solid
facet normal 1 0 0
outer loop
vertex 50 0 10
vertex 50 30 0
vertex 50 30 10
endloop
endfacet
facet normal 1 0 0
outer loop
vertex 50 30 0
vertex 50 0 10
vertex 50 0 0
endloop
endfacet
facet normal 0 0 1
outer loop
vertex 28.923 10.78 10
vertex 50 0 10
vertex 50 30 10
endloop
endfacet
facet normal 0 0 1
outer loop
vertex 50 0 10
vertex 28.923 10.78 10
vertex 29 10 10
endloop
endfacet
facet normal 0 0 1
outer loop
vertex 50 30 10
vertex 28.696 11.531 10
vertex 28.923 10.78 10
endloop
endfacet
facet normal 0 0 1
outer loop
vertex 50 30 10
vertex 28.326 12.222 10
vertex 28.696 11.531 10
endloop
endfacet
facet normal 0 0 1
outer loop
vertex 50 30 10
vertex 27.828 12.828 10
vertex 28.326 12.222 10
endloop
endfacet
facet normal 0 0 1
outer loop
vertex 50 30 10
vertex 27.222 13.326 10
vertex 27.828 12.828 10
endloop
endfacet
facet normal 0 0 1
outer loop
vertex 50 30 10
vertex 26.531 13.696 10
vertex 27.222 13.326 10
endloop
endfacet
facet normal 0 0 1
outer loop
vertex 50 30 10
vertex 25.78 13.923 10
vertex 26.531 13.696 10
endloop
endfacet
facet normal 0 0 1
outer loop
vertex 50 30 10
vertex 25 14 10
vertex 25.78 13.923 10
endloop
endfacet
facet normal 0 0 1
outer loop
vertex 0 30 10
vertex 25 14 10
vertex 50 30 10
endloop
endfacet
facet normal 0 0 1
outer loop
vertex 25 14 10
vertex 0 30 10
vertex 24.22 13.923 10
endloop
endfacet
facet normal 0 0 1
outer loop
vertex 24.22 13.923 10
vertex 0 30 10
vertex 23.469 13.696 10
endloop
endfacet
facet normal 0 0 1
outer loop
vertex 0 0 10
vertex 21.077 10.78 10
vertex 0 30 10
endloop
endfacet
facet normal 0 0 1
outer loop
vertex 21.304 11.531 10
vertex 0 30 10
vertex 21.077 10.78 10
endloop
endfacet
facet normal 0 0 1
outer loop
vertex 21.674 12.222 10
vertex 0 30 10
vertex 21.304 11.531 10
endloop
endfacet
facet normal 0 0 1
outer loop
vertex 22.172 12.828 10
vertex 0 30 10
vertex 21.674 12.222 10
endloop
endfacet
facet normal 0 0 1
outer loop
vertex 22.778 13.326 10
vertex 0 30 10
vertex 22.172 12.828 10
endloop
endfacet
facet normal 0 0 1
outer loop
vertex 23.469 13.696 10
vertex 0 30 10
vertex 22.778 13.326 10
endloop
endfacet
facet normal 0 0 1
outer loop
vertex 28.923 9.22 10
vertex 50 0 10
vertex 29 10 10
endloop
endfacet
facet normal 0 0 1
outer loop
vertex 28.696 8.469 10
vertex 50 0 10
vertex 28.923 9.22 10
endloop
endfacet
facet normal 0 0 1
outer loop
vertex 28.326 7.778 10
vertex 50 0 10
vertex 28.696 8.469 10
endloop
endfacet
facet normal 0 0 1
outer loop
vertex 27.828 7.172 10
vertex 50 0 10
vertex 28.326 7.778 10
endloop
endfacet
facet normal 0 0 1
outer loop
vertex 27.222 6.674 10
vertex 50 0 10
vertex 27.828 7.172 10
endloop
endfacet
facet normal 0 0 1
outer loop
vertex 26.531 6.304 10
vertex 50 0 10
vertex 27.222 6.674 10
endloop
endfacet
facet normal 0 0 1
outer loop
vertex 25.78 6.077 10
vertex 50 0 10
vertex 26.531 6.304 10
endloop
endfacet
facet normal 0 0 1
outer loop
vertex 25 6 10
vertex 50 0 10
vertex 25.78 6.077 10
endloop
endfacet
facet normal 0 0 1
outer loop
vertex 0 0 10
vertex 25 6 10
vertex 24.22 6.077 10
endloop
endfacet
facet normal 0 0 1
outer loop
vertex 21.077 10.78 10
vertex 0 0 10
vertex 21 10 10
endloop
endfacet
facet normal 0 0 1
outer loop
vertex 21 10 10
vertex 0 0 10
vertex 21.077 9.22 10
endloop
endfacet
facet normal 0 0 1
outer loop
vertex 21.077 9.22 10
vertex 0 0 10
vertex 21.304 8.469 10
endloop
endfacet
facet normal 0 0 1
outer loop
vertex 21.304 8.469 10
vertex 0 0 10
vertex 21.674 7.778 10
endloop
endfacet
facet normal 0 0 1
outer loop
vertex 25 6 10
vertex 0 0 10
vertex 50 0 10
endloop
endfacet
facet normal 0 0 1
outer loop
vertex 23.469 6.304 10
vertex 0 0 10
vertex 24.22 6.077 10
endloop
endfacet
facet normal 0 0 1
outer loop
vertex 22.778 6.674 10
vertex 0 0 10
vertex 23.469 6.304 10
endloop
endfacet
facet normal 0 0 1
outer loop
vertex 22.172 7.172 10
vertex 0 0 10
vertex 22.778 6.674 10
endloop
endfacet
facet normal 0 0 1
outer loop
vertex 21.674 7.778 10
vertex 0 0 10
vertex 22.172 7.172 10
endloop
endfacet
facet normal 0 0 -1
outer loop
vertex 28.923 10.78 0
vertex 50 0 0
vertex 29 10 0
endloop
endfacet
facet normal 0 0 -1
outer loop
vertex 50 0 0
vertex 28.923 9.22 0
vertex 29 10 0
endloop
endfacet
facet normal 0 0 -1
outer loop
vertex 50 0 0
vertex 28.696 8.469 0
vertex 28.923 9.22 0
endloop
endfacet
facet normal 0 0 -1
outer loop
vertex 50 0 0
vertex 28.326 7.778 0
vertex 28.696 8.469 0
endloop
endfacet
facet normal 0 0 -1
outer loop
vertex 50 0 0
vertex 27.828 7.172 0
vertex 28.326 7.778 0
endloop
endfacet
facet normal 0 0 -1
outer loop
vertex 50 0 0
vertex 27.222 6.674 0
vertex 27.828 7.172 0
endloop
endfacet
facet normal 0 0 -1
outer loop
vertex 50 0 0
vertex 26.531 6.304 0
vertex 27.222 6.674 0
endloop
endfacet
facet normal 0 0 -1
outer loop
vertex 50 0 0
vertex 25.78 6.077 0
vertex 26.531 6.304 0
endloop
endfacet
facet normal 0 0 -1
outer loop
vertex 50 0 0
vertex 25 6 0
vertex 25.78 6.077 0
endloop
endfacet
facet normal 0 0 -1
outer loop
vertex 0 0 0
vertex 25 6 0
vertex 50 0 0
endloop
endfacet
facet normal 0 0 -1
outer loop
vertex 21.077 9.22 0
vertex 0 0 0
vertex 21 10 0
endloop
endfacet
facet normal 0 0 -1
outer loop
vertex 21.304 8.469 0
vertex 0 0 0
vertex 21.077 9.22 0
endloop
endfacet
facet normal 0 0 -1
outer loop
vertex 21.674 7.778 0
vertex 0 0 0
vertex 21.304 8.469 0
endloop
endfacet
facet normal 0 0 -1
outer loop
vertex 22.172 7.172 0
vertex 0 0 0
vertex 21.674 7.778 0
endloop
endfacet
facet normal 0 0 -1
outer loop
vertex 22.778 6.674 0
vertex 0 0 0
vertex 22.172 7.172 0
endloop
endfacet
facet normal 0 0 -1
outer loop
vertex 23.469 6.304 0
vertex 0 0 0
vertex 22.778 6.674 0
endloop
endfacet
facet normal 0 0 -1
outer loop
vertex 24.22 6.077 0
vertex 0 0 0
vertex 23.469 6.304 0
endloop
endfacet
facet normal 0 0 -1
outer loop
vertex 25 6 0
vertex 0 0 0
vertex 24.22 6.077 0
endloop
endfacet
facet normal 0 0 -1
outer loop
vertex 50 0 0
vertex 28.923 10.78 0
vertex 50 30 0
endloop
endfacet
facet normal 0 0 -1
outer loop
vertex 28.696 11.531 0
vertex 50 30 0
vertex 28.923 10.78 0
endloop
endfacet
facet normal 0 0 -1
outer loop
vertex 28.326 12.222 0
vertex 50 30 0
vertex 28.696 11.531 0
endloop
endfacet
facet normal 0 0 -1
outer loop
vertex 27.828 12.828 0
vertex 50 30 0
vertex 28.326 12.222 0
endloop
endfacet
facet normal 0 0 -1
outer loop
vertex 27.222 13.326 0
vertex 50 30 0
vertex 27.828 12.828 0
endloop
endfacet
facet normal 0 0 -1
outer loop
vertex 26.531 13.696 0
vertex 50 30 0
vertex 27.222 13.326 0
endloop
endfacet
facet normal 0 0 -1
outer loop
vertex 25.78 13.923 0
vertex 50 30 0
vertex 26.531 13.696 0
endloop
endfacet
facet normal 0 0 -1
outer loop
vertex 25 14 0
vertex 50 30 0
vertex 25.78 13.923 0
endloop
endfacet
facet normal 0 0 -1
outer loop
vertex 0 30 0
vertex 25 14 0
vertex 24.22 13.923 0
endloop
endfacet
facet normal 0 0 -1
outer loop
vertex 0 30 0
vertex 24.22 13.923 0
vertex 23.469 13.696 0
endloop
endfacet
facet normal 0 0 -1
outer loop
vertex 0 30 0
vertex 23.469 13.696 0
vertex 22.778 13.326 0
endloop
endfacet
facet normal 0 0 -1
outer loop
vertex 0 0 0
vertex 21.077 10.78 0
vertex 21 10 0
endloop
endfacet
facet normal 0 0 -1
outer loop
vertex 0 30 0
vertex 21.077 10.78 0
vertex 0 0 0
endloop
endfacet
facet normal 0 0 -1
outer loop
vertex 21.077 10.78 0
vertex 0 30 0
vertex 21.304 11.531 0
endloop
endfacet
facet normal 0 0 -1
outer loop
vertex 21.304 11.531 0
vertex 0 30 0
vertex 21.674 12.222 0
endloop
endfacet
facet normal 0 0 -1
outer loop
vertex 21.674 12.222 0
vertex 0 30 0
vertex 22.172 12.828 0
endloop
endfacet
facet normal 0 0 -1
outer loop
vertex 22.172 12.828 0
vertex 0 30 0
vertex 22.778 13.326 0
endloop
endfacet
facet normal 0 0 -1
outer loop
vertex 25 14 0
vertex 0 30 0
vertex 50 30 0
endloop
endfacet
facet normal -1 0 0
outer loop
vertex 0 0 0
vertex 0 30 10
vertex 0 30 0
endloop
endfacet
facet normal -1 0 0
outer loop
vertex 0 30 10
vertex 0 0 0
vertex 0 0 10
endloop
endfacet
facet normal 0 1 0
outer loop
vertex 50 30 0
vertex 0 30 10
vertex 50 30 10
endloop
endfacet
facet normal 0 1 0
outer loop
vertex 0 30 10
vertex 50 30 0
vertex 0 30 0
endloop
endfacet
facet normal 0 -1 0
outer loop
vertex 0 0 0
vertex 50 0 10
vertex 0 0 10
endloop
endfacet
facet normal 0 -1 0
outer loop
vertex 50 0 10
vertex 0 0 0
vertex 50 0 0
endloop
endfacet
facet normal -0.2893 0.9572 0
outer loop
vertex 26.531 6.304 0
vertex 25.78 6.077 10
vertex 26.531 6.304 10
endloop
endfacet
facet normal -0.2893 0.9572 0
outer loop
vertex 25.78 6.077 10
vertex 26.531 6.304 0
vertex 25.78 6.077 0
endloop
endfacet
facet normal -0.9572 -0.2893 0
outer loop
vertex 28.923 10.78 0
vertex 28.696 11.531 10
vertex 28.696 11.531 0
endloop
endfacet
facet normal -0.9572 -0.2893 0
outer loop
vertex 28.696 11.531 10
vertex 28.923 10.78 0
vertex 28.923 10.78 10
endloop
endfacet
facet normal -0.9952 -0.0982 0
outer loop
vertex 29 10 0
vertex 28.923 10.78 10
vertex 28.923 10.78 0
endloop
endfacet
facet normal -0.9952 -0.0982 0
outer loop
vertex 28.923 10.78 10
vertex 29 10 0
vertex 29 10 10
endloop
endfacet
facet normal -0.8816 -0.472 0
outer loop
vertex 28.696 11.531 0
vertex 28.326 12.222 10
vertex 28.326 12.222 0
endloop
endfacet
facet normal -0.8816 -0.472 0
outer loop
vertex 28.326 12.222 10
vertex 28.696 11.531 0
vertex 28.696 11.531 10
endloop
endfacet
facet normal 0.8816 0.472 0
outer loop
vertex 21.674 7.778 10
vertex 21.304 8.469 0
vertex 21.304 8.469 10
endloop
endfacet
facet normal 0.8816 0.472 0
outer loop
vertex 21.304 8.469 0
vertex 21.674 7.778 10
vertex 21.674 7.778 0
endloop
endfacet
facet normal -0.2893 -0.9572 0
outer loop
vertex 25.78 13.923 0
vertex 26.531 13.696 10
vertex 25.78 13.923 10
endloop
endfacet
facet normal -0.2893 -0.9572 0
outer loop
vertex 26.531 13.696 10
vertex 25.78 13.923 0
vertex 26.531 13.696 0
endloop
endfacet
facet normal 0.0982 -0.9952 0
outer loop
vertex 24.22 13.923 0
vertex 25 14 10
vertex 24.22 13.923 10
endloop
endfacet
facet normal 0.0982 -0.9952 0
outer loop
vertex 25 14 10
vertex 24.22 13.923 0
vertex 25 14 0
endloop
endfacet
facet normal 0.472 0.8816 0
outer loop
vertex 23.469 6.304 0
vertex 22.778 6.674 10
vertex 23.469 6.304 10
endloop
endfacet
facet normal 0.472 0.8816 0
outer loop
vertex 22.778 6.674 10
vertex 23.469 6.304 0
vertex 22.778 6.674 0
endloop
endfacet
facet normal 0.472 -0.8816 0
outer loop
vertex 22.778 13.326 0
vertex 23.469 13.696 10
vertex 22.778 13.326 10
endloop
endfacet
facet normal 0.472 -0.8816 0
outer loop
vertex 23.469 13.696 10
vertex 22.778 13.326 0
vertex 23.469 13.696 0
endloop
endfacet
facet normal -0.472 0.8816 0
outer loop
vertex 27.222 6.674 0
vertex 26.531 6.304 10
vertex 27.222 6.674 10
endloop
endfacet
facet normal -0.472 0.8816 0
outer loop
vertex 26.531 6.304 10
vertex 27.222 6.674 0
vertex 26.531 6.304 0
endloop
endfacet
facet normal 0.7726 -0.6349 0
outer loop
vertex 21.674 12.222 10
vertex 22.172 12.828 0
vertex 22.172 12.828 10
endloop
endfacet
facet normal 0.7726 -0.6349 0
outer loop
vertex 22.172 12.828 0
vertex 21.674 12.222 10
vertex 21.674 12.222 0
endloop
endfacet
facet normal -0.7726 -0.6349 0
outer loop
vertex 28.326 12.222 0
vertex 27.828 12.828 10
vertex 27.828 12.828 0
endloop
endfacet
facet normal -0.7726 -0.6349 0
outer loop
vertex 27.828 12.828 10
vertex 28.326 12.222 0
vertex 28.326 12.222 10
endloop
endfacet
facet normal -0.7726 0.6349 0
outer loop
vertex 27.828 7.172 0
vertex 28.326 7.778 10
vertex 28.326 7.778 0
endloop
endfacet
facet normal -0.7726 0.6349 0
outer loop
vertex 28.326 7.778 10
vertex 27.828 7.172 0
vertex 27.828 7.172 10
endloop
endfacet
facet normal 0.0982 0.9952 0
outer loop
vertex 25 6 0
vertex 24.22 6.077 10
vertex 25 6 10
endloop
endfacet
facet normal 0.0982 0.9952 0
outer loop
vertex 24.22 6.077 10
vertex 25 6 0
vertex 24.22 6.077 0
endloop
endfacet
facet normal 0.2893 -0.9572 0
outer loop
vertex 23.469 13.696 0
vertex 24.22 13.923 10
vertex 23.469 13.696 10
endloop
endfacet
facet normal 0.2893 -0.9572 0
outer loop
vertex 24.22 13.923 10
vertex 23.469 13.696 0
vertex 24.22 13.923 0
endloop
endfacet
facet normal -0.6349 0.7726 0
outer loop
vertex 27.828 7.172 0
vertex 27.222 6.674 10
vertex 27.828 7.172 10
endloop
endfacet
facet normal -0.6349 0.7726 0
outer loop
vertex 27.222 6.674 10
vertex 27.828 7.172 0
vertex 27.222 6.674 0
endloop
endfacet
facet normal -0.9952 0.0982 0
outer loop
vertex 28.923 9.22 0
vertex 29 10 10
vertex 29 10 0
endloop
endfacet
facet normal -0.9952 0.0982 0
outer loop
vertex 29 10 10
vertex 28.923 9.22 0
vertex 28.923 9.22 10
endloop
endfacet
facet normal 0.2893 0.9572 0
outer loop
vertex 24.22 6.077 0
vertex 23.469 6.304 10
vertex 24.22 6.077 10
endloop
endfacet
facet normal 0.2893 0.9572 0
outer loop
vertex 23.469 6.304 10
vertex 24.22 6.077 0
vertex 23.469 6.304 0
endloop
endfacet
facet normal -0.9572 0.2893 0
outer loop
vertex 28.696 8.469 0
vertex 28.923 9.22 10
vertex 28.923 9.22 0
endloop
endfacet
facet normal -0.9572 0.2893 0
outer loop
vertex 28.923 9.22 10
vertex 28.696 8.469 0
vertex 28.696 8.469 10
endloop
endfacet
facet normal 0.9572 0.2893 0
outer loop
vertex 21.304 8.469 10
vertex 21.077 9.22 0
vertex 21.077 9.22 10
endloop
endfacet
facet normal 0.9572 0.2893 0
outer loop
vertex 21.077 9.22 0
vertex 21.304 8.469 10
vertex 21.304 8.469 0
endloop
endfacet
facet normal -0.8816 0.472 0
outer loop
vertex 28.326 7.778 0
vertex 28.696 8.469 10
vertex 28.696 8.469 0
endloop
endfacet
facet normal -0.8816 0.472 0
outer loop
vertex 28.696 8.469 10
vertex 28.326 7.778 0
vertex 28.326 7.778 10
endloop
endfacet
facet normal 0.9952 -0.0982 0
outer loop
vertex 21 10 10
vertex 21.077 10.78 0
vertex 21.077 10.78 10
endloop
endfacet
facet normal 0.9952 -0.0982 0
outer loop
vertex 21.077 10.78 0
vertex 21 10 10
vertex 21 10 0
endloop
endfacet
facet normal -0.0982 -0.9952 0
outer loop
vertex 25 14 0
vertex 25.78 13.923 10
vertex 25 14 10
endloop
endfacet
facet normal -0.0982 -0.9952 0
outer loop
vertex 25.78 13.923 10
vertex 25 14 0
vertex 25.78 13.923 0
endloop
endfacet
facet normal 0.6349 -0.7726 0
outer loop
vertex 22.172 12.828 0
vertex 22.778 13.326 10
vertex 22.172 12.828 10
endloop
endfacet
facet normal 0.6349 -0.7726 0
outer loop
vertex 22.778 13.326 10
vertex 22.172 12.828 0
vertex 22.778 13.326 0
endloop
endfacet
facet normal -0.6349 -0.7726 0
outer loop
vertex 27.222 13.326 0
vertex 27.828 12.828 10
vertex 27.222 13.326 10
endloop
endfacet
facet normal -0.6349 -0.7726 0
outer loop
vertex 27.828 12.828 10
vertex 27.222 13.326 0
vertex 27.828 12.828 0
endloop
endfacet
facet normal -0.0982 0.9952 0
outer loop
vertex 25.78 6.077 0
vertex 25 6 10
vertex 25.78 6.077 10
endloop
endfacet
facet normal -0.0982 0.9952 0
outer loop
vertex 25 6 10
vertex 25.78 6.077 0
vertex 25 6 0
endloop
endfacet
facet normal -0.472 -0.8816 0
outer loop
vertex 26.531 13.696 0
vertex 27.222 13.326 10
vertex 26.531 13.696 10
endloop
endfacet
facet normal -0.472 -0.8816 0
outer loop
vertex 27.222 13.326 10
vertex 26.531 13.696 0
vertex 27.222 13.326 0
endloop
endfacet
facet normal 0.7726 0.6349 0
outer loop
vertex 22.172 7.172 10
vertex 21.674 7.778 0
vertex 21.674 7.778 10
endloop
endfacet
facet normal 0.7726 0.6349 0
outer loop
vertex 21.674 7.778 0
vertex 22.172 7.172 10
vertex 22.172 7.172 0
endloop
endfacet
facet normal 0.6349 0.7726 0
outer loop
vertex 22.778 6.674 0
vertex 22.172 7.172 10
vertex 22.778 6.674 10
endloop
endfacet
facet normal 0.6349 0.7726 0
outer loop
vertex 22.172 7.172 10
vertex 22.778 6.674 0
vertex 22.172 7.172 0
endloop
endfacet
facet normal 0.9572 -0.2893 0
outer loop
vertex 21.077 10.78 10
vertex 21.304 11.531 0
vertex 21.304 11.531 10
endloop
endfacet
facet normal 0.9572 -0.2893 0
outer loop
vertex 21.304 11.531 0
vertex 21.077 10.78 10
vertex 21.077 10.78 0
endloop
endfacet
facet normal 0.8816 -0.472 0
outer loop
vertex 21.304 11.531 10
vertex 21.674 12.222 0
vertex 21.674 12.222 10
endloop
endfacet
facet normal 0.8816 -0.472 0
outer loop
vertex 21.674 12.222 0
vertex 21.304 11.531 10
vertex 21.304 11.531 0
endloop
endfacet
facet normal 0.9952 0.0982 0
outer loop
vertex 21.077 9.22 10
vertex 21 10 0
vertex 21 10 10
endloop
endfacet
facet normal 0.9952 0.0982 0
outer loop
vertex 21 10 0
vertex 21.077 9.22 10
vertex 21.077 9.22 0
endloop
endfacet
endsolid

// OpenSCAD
// Module parameters
module my_module(width, height, depth, hole_diameter, hole_x, hole_y) {
  difference() {
    cube([width, height, depth]);
    translate([hole_x, hole_y, 0]) {
      cylinder(h=depth, r=hole_diameter/2, $fn=32);
    }
  }
}

my_module(width=50, height=30, depth=10, hole_diameter=8, hole_x=25, hole_y=10);
